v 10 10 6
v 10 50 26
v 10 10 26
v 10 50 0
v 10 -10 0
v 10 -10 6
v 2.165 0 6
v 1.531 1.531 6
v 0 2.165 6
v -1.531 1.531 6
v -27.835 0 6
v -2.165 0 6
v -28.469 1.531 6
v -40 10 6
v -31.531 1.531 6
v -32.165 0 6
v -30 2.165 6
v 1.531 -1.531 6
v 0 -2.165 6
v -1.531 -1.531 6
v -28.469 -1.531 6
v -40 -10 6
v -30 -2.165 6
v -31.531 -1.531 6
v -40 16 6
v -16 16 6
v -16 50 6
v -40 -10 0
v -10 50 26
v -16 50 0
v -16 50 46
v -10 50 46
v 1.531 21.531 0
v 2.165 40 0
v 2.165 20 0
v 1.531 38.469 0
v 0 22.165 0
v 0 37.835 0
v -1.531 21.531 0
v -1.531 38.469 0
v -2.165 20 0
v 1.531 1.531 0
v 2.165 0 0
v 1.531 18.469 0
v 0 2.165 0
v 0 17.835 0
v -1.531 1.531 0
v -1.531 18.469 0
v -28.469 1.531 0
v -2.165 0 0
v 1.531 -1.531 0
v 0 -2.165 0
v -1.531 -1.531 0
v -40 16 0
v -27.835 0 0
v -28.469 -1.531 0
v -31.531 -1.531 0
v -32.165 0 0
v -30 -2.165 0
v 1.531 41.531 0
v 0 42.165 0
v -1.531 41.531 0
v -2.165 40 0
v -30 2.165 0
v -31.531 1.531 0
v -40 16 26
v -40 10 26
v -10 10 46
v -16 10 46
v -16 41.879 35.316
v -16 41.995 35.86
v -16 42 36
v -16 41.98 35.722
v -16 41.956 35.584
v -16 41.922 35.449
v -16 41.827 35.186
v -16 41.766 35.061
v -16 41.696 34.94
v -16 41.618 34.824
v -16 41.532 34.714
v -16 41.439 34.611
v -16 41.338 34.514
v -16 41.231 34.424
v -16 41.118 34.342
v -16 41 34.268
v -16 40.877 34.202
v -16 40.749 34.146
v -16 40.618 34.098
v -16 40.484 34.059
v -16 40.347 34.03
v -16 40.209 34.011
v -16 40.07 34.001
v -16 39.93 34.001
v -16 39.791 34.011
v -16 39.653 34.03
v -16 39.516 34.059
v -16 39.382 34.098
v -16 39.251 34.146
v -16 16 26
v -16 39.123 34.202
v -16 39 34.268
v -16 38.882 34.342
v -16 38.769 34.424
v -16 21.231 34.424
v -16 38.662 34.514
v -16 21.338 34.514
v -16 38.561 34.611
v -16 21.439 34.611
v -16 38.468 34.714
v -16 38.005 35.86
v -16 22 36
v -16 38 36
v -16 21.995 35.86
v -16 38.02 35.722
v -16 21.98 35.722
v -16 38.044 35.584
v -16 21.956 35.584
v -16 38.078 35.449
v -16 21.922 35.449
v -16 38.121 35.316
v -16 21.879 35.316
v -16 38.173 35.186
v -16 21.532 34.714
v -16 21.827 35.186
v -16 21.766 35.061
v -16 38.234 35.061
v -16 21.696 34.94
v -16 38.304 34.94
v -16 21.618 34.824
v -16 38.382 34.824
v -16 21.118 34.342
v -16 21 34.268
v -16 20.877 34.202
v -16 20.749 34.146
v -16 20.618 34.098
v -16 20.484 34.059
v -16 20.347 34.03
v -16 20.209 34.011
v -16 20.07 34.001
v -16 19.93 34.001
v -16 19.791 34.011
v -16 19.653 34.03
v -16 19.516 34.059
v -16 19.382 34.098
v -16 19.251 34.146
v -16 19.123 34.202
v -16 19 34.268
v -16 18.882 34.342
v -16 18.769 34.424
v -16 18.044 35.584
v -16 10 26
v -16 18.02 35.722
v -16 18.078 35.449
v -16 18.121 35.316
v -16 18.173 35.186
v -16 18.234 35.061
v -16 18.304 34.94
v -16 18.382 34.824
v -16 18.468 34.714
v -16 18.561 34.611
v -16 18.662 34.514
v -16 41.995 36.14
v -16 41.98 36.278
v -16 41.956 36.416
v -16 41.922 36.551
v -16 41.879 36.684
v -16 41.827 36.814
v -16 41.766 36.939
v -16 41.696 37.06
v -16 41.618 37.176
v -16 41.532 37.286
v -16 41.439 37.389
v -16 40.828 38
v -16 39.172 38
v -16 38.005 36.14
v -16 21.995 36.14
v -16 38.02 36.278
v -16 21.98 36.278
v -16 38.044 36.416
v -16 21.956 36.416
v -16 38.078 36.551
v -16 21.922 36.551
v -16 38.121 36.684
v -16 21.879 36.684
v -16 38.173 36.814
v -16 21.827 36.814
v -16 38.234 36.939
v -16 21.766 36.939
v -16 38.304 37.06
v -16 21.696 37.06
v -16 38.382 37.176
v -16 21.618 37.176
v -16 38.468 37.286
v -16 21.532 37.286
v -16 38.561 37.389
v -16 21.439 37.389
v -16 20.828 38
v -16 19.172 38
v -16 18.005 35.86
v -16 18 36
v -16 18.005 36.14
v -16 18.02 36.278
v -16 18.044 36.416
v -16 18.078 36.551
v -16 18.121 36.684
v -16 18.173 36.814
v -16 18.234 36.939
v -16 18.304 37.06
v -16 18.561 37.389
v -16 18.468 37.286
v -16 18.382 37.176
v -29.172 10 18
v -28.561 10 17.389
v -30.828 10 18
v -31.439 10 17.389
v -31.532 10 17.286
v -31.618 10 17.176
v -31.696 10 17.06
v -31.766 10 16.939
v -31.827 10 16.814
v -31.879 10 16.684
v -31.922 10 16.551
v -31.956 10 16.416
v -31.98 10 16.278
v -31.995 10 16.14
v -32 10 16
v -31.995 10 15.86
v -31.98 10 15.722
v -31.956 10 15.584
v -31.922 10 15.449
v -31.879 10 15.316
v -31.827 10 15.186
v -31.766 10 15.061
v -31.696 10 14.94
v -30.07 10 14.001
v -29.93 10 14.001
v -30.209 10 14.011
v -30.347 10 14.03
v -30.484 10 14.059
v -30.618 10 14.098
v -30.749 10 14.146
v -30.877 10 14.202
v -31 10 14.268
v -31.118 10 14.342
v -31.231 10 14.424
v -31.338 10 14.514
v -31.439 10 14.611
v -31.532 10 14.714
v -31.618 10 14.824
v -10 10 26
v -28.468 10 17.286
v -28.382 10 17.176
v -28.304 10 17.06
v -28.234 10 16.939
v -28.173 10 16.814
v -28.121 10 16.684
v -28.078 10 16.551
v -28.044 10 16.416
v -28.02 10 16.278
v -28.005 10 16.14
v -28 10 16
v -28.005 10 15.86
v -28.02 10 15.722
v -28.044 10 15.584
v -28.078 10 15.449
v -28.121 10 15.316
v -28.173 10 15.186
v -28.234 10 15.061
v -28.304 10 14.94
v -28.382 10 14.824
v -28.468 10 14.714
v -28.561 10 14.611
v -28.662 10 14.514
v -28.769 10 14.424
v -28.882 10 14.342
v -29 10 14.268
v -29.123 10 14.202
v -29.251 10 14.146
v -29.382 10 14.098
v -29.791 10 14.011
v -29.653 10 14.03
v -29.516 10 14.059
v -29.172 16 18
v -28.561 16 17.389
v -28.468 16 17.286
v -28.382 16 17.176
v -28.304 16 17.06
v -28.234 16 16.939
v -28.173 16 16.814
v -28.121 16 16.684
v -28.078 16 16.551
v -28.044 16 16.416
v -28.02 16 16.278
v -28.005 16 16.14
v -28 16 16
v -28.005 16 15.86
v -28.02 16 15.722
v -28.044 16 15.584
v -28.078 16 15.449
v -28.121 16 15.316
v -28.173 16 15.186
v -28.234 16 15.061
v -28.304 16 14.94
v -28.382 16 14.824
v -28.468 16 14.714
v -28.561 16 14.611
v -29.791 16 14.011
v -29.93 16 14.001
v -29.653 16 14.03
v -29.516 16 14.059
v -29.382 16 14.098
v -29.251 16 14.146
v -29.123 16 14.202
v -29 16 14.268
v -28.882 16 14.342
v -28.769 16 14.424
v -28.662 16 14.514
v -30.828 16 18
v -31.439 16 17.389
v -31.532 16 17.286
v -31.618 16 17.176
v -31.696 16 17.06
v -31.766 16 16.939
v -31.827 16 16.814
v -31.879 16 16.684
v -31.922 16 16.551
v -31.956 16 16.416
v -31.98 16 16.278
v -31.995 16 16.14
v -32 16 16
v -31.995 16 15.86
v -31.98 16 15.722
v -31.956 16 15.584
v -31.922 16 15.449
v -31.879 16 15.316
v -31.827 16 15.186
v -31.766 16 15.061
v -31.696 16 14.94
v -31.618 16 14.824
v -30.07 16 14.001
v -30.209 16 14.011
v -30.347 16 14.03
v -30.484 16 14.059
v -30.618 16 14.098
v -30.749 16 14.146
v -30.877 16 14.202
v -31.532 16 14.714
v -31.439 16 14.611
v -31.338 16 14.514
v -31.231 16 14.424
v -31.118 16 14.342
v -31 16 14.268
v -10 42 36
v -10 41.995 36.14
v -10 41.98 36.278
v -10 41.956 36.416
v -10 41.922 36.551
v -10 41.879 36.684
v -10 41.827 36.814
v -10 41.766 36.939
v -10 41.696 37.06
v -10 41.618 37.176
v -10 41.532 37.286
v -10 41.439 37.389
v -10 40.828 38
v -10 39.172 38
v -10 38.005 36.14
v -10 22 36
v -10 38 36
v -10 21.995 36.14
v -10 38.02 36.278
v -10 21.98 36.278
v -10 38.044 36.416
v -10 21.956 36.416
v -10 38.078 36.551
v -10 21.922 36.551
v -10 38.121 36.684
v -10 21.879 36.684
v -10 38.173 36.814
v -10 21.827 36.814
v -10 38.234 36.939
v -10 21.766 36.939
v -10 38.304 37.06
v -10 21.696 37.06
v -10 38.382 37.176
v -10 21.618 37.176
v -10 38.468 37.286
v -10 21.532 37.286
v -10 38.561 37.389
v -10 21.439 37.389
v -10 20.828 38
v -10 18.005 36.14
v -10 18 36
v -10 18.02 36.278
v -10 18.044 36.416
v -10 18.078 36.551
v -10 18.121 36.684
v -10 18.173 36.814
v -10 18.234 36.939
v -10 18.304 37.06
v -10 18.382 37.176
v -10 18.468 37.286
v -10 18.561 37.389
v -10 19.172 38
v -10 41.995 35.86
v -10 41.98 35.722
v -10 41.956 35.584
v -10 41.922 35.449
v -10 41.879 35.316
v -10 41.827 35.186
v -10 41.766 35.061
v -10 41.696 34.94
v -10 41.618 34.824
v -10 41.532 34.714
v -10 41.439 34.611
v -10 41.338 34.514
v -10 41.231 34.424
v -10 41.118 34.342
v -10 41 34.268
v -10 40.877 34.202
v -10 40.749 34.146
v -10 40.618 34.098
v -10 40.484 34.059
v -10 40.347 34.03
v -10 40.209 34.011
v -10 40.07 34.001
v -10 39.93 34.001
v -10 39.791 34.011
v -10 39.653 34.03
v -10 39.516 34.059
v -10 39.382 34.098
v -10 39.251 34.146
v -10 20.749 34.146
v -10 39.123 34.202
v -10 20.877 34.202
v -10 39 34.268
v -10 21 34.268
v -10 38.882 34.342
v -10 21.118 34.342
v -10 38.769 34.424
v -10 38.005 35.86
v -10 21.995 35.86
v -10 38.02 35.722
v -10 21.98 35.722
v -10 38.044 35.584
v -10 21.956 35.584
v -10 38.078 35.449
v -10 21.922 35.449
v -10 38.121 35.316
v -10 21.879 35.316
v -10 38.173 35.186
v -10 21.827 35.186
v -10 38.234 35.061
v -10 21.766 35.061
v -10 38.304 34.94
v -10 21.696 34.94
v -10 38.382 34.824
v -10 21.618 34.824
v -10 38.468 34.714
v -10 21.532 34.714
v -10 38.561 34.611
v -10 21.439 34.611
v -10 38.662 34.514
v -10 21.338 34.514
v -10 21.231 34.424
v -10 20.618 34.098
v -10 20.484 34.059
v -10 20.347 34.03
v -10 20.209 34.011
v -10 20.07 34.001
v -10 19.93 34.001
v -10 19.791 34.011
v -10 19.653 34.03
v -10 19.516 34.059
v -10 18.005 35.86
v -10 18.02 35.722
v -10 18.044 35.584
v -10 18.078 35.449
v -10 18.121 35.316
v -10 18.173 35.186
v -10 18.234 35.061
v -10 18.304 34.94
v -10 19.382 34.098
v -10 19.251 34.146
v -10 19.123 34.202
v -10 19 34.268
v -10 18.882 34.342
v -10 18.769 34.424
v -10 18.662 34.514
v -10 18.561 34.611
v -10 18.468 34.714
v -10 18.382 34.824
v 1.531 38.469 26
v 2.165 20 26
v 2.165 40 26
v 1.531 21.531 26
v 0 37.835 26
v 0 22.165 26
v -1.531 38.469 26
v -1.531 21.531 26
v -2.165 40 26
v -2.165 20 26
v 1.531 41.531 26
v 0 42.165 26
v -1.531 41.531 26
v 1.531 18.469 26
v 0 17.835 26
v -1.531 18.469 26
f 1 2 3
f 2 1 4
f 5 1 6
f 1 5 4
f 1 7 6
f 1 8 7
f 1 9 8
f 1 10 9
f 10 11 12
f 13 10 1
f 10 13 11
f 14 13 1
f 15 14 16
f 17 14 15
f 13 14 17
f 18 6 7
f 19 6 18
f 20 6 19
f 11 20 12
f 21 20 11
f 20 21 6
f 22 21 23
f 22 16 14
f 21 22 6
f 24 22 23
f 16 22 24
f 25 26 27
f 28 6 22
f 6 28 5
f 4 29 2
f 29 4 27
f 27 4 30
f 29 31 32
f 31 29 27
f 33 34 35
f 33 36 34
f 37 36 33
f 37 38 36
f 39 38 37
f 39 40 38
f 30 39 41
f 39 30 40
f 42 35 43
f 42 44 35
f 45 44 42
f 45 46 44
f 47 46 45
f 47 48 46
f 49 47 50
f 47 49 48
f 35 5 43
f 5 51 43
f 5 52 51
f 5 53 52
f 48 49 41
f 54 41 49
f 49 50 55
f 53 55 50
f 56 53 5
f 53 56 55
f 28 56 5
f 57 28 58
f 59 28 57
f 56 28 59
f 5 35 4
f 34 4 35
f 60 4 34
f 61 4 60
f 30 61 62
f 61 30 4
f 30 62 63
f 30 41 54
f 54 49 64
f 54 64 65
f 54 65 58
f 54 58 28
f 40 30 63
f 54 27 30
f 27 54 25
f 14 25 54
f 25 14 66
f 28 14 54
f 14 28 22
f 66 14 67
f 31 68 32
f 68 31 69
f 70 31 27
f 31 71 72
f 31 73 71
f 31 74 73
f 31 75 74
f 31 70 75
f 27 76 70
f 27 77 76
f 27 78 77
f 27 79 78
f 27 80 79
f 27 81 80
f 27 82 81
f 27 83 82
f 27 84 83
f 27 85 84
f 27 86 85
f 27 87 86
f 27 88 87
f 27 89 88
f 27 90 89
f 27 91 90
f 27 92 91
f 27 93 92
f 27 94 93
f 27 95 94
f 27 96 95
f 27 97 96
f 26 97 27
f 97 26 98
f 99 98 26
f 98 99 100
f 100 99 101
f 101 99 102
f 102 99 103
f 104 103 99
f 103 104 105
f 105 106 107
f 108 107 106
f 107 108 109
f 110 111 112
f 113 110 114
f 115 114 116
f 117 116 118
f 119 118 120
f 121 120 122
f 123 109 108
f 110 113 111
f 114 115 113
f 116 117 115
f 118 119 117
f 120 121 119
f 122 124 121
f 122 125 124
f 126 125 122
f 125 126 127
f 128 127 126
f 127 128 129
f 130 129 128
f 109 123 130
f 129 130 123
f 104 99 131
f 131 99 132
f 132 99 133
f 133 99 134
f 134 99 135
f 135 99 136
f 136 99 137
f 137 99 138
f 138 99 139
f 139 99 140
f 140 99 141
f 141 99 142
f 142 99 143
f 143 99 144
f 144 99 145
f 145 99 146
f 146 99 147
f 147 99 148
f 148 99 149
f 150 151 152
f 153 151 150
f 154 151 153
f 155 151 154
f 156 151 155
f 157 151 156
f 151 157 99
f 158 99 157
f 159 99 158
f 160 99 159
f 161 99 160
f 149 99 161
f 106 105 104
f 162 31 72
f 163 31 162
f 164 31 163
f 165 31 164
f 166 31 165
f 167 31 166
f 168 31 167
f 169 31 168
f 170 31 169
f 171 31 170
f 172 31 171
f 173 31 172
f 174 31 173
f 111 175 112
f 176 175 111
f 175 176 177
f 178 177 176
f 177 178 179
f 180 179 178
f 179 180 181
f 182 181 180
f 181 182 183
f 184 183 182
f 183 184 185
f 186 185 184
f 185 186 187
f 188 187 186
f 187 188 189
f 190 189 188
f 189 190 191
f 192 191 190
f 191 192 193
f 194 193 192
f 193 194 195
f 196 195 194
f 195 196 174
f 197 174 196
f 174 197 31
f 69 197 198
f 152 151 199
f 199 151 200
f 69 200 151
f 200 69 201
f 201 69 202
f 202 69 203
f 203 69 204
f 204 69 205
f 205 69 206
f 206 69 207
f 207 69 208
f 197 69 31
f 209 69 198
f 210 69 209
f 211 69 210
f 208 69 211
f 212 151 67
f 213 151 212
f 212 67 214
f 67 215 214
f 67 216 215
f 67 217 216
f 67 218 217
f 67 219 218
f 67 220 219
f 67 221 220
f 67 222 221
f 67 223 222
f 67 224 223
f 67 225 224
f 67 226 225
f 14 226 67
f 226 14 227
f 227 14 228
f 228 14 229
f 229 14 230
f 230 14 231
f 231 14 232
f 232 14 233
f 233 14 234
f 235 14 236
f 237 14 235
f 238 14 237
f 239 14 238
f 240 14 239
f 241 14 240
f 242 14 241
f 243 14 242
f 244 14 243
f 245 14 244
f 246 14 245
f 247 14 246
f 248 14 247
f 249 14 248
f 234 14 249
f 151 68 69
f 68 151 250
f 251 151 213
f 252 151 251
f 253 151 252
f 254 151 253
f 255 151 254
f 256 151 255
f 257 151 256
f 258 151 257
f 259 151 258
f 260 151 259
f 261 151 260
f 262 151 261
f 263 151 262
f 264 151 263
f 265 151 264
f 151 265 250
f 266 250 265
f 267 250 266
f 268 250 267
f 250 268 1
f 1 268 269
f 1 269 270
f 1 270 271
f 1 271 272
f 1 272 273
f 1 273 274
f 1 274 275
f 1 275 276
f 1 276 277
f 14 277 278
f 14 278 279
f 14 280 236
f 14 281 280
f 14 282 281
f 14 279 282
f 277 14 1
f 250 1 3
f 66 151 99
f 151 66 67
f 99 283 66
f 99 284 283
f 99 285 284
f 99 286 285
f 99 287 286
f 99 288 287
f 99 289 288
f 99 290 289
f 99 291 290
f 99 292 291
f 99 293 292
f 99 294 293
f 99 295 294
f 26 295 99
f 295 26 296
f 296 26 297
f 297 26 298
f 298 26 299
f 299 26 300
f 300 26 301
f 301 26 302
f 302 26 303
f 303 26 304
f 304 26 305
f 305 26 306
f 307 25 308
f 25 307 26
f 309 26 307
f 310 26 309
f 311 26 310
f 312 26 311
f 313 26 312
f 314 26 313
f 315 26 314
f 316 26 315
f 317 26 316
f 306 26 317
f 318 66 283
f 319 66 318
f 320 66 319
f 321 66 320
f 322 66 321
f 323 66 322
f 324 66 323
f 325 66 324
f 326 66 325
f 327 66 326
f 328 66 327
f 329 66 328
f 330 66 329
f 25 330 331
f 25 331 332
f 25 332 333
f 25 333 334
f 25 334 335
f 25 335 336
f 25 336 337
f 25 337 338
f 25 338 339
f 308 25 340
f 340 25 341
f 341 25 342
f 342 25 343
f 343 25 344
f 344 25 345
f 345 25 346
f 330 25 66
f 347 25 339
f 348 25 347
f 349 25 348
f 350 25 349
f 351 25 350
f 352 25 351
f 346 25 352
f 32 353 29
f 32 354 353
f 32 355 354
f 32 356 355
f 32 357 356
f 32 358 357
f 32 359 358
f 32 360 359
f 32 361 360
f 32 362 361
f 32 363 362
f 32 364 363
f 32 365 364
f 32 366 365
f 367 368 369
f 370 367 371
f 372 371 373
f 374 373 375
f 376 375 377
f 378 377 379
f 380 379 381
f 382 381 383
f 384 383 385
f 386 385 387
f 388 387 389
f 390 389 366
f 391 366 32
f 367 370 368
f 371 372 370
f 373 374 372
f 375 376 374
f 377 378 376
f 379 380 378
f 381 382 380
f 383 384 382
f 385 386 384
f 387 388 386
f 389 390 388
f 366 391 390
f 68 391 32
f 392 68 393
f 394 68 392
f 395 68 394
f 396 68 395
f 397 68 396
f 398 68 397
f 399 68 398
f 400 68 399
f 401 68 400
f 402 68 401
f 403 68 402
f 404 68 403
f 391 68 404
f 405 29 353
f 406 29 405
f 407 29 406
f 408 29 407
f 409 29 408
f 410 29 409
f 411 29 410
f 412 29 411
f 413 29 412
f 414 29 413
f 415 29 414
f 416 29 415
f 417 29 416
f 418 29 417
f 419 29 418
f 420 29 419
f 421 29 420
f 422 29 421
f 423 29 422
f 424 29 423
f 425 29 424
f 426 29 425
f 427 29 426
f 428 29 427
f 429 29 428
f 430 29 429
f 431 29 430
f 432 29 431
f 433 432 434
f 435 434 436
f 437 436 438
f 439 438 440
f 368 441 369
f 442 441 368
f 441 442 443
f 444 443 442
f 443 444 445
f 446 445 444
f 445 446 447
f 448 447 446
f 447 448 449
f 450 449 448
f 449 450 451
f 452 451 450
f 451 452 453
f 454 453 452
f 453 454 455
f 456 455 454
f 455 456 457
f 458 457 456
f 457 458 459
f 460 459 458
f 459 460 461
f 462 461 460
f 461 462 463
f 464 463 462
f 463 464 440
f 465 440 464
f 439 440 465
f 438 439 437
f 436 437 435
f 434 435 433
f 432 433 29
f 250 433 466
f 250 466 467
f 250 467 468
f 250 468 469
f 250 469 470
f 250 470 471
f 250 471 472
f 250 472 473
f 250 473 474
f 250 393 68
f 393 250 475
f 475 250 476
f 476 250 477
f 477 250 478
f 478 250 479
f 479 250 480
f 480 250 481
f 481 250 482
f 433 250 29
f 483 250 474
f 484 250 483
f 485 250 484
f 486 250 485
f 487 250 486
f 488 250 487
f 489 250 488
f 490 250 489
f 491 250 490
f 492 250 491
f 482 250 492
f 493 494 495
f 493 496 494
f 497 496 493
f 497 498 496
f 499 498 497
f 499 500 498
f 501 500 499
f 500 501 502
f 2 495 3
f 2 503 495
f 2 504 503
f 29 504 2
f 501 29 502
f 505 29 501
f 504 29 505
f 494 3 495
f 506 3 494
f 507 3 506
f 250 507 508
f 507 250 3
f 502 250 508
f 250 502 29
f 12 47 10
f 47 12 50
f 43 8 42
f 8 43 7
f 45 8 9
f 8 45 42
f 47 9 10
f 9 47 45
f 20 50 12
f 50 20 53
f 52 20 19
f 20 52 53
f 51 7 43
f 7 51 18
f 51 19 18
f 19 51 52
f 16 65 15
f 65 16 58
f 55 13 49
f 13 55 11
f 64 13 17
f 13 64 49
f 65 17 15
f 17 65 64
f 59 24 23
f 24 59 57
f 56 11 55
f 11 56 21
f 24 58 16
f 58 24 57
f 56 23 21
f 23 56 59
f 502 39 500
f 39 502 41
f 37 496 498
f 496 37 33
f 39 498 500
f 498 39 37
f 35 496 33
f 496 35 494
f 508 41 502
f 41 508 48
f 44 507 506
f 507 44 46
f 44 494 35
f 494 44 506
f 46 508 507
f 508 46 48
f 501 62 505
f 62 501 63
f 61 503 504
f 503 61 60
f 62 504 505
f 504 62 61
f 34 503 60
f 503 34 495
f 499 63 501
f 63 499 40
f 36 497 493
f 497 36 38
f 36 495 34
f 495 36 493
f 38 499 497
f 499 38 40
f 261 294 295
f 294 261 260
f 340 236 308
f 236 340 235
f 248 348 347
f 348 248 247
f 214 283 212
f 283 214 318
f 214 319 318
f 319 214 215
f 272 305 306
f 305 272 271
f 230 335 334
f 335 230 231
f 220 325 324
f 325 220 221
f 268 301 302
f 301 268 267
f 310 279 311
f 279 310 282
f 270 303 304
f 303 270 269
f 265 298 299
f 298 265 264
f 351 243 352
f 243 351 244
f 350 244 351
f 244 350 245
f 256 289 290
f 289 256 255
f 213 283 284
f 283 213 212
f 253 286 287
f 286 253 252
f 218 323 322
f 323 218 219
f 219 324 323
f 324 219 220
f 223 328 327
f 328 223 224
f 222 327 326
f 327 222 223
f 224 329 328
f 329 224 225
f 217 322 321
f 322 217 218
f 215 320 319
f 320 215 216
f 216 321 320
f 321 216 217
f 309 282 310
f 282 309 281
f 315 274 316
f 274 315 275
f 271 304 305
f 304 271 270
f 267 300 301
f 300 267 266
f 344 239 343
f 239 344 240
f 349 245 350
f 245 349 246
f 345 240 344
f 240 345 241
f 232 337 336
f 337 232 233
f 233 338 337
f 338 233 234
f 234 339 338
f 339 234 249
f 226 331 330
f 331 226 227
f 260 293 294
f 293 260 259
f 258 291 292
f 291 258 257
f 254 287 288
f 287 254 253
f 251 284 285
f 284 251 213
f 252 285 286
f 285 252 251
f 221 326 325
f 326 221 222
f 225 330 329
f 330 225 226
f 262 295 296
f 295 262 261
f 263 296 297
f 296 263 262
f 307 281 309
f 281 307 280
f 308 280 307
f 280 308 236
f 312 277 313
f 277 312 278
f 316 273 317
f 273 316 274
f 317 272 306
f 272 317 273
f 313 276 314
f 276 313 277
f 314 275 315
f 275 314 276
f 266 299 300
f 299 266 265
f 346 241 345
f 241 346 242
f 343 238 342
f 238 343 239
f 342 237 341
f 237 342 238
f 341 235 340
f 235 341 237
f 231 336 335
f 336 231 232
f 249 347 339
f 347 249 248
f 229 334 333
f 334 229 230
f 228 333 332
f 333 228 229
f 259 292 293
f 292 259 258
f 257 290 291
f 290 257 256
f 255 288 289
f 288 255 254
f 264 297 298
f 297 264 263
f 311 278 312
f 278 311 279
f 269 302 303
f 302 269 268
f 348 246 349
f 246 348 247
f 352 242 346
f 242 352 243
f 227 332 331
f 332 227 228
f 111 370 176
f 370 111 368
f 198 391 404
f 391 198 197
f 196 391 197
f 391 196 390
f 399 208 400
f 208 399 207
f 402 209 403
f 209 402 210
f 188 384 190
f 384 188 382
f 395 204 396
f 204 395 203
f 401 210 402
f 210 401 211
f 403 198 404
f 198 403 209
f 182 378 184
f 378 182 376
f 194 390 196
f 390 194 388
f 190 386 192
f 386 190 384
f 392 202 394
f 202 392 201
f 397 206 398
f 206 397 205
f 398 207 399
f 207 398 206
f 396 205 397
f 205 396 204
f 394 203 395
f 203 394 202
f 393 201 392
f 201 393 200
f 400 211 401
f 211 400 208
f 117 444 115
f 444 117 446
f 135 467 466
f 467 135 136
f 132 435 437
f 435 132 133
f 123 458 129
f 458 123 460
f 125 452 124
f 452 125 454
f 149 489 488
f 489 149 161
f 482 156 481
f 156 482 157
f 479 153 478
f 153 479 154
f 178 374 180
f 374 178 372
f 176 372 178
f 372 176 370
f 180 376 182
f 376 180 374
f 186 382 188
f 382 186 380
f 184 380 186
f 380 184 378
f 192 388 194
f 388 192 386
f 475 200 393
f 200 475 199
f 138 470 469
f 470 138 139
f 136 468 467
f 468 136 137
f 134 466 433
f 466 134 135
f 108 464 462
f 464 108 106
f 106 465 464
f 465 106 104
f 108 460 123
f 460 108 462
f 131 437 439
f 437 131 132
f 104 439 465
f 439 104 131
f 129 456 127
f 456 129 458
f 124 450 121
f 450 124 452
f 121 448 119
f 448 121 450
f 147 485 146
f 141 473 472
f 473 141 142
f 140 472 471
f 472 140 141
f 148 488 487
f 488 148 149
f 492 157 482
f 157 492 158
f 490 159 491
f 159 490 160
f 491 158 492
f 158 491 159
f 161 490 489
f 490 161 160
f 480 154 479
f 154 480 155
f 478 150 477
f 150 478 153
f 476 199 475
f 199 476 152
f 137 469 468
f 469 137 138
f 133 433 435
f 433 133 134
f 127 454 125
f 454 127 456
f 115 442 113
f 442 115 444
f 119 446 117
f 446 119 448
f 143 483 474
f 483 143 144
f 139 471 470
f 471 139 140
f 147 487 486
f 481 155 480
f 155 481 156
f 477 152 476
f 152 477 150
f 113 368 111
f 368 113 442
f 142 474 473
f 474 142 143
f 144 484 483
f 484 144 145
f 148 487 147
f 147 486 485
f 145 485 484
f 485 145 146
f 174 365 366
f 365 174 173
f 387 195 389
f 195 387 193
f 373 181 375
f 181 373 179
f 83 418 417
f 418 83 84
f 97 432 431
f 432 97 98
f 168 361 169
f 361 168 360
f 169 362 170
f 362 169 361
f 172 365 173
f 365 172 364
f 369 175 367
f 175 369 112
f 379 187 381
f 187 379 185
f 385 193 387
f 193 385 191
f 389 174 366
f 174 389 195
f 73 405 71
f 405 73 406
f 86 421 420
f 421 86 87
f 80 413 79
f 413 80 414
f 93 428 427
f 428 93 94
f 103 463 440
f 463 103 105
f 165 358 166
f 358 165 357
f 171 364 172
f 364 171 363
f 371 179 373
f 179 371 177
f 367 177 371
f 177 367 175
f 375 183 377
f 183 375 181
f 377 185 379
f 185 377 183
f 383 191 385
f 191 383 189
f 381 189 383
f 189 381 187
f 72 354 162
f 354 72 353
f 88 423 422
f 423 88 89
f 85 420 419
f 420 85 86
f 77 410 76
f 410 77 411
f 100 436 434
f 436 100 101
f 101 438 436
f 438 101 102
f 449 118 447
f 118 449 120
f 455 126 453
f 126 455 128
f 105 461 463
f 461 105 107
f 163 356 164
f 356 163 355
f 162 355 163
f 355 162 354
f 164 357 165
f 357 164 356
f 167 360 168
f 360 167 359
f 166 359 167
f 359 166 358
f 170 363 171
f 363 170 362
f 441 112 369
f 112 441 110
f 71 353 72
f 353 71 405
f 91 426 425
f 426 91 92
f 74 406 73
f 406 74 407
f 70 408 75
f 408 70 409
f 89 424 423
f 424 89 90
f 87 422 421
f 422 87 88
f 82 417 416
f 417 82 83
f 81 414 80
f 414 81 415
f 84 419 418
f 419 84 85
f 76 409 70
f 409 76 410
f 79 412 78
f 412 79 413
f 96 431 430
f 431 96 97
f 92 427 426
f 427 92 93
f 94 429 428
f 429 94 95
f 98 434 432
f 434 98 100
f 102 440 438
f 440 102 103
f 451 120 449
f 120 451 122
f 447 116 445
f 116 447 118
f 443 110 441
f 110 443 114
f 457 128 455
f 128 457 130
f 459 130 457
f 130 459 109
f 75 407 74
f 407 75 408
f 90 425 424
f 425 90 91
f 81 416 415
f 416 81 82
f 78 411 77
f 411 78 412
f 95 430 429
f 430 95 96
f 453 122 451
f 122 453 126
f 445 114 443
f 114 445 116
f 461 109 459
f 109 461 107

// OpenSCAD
// file: trunctear.scad
//A module for truncated tear drops.

trunctear(1, 0.5, $fn = 90);

module trunctear(hei, radian, cent = false)
{
    linear_extrude(height = hei, center = cent)
        hull()
        {
            circle(r = radian);
            translate([0, radian/2])
                square([2*(radian*(2*cos(45)-1)), radian], center = true);
        }
}
// file: polyhole.scad
// The Cylinder is dead! Long live the Cylinder!
// A module for a polyhole by radius, based on Nophead's work.

module polyhole(h, r, cent = false)
{
    n = max(round(4 * r), 3);
    cylinder(h = h, r = r / cos(180 / n), $fn = n, center = cent);
}
// file: UpperBrace.scad
// Upper brace

use<polyhole.scad>
use<trunctear.scad>

UpperBrace();

module UpperBrace()
{
    dist = 46;
    
    difference()
    {
        union()
        {
            hull()
            {
                translate([3, 20, 3])
                    cube([20+6, 60, 6], center = true);
                translate([15, 3, 3])
                    cube([50, 20+6, 6], center = true);
            }
            translate([3, 30, dist/2])
                cube([20+6, 40, dist], center = true);
            translate([15, 13, 13])
                cube([50, 6, 26], center = true);
        }
        translate([0, 30, dist-10])
            cube([20, 40, 20], center = true);
        polyhole(dist, 2);
        translate([30, 0, 0])
            polyhole(dist, 2);
        translate([0, 20, 0])
            polyhole(dist, 2);
        translate([0, 40, 0])
            polyhole(dist, 2);
        translate([30, 10, 16])
            rotate([90, 0, 180])
                trunctear(6, 2, $fn = 90);
        translate([10, 20, dist-10])
            rotate([90, 0, 90])
                trunctear(6, 2, $fn = 90);
        translate([10, 40, dist-10])
            rotate([90, 0, 90])
                trunctear(6, 2, $fn = 90);
    }
}
// main file
// Upper brace mirror

use<UpperBrace.scad>

UpperBraceMirror();

module UpperBraceMirror()
{
    scale([-1, 1, 1])
        UpperBrace();
}
